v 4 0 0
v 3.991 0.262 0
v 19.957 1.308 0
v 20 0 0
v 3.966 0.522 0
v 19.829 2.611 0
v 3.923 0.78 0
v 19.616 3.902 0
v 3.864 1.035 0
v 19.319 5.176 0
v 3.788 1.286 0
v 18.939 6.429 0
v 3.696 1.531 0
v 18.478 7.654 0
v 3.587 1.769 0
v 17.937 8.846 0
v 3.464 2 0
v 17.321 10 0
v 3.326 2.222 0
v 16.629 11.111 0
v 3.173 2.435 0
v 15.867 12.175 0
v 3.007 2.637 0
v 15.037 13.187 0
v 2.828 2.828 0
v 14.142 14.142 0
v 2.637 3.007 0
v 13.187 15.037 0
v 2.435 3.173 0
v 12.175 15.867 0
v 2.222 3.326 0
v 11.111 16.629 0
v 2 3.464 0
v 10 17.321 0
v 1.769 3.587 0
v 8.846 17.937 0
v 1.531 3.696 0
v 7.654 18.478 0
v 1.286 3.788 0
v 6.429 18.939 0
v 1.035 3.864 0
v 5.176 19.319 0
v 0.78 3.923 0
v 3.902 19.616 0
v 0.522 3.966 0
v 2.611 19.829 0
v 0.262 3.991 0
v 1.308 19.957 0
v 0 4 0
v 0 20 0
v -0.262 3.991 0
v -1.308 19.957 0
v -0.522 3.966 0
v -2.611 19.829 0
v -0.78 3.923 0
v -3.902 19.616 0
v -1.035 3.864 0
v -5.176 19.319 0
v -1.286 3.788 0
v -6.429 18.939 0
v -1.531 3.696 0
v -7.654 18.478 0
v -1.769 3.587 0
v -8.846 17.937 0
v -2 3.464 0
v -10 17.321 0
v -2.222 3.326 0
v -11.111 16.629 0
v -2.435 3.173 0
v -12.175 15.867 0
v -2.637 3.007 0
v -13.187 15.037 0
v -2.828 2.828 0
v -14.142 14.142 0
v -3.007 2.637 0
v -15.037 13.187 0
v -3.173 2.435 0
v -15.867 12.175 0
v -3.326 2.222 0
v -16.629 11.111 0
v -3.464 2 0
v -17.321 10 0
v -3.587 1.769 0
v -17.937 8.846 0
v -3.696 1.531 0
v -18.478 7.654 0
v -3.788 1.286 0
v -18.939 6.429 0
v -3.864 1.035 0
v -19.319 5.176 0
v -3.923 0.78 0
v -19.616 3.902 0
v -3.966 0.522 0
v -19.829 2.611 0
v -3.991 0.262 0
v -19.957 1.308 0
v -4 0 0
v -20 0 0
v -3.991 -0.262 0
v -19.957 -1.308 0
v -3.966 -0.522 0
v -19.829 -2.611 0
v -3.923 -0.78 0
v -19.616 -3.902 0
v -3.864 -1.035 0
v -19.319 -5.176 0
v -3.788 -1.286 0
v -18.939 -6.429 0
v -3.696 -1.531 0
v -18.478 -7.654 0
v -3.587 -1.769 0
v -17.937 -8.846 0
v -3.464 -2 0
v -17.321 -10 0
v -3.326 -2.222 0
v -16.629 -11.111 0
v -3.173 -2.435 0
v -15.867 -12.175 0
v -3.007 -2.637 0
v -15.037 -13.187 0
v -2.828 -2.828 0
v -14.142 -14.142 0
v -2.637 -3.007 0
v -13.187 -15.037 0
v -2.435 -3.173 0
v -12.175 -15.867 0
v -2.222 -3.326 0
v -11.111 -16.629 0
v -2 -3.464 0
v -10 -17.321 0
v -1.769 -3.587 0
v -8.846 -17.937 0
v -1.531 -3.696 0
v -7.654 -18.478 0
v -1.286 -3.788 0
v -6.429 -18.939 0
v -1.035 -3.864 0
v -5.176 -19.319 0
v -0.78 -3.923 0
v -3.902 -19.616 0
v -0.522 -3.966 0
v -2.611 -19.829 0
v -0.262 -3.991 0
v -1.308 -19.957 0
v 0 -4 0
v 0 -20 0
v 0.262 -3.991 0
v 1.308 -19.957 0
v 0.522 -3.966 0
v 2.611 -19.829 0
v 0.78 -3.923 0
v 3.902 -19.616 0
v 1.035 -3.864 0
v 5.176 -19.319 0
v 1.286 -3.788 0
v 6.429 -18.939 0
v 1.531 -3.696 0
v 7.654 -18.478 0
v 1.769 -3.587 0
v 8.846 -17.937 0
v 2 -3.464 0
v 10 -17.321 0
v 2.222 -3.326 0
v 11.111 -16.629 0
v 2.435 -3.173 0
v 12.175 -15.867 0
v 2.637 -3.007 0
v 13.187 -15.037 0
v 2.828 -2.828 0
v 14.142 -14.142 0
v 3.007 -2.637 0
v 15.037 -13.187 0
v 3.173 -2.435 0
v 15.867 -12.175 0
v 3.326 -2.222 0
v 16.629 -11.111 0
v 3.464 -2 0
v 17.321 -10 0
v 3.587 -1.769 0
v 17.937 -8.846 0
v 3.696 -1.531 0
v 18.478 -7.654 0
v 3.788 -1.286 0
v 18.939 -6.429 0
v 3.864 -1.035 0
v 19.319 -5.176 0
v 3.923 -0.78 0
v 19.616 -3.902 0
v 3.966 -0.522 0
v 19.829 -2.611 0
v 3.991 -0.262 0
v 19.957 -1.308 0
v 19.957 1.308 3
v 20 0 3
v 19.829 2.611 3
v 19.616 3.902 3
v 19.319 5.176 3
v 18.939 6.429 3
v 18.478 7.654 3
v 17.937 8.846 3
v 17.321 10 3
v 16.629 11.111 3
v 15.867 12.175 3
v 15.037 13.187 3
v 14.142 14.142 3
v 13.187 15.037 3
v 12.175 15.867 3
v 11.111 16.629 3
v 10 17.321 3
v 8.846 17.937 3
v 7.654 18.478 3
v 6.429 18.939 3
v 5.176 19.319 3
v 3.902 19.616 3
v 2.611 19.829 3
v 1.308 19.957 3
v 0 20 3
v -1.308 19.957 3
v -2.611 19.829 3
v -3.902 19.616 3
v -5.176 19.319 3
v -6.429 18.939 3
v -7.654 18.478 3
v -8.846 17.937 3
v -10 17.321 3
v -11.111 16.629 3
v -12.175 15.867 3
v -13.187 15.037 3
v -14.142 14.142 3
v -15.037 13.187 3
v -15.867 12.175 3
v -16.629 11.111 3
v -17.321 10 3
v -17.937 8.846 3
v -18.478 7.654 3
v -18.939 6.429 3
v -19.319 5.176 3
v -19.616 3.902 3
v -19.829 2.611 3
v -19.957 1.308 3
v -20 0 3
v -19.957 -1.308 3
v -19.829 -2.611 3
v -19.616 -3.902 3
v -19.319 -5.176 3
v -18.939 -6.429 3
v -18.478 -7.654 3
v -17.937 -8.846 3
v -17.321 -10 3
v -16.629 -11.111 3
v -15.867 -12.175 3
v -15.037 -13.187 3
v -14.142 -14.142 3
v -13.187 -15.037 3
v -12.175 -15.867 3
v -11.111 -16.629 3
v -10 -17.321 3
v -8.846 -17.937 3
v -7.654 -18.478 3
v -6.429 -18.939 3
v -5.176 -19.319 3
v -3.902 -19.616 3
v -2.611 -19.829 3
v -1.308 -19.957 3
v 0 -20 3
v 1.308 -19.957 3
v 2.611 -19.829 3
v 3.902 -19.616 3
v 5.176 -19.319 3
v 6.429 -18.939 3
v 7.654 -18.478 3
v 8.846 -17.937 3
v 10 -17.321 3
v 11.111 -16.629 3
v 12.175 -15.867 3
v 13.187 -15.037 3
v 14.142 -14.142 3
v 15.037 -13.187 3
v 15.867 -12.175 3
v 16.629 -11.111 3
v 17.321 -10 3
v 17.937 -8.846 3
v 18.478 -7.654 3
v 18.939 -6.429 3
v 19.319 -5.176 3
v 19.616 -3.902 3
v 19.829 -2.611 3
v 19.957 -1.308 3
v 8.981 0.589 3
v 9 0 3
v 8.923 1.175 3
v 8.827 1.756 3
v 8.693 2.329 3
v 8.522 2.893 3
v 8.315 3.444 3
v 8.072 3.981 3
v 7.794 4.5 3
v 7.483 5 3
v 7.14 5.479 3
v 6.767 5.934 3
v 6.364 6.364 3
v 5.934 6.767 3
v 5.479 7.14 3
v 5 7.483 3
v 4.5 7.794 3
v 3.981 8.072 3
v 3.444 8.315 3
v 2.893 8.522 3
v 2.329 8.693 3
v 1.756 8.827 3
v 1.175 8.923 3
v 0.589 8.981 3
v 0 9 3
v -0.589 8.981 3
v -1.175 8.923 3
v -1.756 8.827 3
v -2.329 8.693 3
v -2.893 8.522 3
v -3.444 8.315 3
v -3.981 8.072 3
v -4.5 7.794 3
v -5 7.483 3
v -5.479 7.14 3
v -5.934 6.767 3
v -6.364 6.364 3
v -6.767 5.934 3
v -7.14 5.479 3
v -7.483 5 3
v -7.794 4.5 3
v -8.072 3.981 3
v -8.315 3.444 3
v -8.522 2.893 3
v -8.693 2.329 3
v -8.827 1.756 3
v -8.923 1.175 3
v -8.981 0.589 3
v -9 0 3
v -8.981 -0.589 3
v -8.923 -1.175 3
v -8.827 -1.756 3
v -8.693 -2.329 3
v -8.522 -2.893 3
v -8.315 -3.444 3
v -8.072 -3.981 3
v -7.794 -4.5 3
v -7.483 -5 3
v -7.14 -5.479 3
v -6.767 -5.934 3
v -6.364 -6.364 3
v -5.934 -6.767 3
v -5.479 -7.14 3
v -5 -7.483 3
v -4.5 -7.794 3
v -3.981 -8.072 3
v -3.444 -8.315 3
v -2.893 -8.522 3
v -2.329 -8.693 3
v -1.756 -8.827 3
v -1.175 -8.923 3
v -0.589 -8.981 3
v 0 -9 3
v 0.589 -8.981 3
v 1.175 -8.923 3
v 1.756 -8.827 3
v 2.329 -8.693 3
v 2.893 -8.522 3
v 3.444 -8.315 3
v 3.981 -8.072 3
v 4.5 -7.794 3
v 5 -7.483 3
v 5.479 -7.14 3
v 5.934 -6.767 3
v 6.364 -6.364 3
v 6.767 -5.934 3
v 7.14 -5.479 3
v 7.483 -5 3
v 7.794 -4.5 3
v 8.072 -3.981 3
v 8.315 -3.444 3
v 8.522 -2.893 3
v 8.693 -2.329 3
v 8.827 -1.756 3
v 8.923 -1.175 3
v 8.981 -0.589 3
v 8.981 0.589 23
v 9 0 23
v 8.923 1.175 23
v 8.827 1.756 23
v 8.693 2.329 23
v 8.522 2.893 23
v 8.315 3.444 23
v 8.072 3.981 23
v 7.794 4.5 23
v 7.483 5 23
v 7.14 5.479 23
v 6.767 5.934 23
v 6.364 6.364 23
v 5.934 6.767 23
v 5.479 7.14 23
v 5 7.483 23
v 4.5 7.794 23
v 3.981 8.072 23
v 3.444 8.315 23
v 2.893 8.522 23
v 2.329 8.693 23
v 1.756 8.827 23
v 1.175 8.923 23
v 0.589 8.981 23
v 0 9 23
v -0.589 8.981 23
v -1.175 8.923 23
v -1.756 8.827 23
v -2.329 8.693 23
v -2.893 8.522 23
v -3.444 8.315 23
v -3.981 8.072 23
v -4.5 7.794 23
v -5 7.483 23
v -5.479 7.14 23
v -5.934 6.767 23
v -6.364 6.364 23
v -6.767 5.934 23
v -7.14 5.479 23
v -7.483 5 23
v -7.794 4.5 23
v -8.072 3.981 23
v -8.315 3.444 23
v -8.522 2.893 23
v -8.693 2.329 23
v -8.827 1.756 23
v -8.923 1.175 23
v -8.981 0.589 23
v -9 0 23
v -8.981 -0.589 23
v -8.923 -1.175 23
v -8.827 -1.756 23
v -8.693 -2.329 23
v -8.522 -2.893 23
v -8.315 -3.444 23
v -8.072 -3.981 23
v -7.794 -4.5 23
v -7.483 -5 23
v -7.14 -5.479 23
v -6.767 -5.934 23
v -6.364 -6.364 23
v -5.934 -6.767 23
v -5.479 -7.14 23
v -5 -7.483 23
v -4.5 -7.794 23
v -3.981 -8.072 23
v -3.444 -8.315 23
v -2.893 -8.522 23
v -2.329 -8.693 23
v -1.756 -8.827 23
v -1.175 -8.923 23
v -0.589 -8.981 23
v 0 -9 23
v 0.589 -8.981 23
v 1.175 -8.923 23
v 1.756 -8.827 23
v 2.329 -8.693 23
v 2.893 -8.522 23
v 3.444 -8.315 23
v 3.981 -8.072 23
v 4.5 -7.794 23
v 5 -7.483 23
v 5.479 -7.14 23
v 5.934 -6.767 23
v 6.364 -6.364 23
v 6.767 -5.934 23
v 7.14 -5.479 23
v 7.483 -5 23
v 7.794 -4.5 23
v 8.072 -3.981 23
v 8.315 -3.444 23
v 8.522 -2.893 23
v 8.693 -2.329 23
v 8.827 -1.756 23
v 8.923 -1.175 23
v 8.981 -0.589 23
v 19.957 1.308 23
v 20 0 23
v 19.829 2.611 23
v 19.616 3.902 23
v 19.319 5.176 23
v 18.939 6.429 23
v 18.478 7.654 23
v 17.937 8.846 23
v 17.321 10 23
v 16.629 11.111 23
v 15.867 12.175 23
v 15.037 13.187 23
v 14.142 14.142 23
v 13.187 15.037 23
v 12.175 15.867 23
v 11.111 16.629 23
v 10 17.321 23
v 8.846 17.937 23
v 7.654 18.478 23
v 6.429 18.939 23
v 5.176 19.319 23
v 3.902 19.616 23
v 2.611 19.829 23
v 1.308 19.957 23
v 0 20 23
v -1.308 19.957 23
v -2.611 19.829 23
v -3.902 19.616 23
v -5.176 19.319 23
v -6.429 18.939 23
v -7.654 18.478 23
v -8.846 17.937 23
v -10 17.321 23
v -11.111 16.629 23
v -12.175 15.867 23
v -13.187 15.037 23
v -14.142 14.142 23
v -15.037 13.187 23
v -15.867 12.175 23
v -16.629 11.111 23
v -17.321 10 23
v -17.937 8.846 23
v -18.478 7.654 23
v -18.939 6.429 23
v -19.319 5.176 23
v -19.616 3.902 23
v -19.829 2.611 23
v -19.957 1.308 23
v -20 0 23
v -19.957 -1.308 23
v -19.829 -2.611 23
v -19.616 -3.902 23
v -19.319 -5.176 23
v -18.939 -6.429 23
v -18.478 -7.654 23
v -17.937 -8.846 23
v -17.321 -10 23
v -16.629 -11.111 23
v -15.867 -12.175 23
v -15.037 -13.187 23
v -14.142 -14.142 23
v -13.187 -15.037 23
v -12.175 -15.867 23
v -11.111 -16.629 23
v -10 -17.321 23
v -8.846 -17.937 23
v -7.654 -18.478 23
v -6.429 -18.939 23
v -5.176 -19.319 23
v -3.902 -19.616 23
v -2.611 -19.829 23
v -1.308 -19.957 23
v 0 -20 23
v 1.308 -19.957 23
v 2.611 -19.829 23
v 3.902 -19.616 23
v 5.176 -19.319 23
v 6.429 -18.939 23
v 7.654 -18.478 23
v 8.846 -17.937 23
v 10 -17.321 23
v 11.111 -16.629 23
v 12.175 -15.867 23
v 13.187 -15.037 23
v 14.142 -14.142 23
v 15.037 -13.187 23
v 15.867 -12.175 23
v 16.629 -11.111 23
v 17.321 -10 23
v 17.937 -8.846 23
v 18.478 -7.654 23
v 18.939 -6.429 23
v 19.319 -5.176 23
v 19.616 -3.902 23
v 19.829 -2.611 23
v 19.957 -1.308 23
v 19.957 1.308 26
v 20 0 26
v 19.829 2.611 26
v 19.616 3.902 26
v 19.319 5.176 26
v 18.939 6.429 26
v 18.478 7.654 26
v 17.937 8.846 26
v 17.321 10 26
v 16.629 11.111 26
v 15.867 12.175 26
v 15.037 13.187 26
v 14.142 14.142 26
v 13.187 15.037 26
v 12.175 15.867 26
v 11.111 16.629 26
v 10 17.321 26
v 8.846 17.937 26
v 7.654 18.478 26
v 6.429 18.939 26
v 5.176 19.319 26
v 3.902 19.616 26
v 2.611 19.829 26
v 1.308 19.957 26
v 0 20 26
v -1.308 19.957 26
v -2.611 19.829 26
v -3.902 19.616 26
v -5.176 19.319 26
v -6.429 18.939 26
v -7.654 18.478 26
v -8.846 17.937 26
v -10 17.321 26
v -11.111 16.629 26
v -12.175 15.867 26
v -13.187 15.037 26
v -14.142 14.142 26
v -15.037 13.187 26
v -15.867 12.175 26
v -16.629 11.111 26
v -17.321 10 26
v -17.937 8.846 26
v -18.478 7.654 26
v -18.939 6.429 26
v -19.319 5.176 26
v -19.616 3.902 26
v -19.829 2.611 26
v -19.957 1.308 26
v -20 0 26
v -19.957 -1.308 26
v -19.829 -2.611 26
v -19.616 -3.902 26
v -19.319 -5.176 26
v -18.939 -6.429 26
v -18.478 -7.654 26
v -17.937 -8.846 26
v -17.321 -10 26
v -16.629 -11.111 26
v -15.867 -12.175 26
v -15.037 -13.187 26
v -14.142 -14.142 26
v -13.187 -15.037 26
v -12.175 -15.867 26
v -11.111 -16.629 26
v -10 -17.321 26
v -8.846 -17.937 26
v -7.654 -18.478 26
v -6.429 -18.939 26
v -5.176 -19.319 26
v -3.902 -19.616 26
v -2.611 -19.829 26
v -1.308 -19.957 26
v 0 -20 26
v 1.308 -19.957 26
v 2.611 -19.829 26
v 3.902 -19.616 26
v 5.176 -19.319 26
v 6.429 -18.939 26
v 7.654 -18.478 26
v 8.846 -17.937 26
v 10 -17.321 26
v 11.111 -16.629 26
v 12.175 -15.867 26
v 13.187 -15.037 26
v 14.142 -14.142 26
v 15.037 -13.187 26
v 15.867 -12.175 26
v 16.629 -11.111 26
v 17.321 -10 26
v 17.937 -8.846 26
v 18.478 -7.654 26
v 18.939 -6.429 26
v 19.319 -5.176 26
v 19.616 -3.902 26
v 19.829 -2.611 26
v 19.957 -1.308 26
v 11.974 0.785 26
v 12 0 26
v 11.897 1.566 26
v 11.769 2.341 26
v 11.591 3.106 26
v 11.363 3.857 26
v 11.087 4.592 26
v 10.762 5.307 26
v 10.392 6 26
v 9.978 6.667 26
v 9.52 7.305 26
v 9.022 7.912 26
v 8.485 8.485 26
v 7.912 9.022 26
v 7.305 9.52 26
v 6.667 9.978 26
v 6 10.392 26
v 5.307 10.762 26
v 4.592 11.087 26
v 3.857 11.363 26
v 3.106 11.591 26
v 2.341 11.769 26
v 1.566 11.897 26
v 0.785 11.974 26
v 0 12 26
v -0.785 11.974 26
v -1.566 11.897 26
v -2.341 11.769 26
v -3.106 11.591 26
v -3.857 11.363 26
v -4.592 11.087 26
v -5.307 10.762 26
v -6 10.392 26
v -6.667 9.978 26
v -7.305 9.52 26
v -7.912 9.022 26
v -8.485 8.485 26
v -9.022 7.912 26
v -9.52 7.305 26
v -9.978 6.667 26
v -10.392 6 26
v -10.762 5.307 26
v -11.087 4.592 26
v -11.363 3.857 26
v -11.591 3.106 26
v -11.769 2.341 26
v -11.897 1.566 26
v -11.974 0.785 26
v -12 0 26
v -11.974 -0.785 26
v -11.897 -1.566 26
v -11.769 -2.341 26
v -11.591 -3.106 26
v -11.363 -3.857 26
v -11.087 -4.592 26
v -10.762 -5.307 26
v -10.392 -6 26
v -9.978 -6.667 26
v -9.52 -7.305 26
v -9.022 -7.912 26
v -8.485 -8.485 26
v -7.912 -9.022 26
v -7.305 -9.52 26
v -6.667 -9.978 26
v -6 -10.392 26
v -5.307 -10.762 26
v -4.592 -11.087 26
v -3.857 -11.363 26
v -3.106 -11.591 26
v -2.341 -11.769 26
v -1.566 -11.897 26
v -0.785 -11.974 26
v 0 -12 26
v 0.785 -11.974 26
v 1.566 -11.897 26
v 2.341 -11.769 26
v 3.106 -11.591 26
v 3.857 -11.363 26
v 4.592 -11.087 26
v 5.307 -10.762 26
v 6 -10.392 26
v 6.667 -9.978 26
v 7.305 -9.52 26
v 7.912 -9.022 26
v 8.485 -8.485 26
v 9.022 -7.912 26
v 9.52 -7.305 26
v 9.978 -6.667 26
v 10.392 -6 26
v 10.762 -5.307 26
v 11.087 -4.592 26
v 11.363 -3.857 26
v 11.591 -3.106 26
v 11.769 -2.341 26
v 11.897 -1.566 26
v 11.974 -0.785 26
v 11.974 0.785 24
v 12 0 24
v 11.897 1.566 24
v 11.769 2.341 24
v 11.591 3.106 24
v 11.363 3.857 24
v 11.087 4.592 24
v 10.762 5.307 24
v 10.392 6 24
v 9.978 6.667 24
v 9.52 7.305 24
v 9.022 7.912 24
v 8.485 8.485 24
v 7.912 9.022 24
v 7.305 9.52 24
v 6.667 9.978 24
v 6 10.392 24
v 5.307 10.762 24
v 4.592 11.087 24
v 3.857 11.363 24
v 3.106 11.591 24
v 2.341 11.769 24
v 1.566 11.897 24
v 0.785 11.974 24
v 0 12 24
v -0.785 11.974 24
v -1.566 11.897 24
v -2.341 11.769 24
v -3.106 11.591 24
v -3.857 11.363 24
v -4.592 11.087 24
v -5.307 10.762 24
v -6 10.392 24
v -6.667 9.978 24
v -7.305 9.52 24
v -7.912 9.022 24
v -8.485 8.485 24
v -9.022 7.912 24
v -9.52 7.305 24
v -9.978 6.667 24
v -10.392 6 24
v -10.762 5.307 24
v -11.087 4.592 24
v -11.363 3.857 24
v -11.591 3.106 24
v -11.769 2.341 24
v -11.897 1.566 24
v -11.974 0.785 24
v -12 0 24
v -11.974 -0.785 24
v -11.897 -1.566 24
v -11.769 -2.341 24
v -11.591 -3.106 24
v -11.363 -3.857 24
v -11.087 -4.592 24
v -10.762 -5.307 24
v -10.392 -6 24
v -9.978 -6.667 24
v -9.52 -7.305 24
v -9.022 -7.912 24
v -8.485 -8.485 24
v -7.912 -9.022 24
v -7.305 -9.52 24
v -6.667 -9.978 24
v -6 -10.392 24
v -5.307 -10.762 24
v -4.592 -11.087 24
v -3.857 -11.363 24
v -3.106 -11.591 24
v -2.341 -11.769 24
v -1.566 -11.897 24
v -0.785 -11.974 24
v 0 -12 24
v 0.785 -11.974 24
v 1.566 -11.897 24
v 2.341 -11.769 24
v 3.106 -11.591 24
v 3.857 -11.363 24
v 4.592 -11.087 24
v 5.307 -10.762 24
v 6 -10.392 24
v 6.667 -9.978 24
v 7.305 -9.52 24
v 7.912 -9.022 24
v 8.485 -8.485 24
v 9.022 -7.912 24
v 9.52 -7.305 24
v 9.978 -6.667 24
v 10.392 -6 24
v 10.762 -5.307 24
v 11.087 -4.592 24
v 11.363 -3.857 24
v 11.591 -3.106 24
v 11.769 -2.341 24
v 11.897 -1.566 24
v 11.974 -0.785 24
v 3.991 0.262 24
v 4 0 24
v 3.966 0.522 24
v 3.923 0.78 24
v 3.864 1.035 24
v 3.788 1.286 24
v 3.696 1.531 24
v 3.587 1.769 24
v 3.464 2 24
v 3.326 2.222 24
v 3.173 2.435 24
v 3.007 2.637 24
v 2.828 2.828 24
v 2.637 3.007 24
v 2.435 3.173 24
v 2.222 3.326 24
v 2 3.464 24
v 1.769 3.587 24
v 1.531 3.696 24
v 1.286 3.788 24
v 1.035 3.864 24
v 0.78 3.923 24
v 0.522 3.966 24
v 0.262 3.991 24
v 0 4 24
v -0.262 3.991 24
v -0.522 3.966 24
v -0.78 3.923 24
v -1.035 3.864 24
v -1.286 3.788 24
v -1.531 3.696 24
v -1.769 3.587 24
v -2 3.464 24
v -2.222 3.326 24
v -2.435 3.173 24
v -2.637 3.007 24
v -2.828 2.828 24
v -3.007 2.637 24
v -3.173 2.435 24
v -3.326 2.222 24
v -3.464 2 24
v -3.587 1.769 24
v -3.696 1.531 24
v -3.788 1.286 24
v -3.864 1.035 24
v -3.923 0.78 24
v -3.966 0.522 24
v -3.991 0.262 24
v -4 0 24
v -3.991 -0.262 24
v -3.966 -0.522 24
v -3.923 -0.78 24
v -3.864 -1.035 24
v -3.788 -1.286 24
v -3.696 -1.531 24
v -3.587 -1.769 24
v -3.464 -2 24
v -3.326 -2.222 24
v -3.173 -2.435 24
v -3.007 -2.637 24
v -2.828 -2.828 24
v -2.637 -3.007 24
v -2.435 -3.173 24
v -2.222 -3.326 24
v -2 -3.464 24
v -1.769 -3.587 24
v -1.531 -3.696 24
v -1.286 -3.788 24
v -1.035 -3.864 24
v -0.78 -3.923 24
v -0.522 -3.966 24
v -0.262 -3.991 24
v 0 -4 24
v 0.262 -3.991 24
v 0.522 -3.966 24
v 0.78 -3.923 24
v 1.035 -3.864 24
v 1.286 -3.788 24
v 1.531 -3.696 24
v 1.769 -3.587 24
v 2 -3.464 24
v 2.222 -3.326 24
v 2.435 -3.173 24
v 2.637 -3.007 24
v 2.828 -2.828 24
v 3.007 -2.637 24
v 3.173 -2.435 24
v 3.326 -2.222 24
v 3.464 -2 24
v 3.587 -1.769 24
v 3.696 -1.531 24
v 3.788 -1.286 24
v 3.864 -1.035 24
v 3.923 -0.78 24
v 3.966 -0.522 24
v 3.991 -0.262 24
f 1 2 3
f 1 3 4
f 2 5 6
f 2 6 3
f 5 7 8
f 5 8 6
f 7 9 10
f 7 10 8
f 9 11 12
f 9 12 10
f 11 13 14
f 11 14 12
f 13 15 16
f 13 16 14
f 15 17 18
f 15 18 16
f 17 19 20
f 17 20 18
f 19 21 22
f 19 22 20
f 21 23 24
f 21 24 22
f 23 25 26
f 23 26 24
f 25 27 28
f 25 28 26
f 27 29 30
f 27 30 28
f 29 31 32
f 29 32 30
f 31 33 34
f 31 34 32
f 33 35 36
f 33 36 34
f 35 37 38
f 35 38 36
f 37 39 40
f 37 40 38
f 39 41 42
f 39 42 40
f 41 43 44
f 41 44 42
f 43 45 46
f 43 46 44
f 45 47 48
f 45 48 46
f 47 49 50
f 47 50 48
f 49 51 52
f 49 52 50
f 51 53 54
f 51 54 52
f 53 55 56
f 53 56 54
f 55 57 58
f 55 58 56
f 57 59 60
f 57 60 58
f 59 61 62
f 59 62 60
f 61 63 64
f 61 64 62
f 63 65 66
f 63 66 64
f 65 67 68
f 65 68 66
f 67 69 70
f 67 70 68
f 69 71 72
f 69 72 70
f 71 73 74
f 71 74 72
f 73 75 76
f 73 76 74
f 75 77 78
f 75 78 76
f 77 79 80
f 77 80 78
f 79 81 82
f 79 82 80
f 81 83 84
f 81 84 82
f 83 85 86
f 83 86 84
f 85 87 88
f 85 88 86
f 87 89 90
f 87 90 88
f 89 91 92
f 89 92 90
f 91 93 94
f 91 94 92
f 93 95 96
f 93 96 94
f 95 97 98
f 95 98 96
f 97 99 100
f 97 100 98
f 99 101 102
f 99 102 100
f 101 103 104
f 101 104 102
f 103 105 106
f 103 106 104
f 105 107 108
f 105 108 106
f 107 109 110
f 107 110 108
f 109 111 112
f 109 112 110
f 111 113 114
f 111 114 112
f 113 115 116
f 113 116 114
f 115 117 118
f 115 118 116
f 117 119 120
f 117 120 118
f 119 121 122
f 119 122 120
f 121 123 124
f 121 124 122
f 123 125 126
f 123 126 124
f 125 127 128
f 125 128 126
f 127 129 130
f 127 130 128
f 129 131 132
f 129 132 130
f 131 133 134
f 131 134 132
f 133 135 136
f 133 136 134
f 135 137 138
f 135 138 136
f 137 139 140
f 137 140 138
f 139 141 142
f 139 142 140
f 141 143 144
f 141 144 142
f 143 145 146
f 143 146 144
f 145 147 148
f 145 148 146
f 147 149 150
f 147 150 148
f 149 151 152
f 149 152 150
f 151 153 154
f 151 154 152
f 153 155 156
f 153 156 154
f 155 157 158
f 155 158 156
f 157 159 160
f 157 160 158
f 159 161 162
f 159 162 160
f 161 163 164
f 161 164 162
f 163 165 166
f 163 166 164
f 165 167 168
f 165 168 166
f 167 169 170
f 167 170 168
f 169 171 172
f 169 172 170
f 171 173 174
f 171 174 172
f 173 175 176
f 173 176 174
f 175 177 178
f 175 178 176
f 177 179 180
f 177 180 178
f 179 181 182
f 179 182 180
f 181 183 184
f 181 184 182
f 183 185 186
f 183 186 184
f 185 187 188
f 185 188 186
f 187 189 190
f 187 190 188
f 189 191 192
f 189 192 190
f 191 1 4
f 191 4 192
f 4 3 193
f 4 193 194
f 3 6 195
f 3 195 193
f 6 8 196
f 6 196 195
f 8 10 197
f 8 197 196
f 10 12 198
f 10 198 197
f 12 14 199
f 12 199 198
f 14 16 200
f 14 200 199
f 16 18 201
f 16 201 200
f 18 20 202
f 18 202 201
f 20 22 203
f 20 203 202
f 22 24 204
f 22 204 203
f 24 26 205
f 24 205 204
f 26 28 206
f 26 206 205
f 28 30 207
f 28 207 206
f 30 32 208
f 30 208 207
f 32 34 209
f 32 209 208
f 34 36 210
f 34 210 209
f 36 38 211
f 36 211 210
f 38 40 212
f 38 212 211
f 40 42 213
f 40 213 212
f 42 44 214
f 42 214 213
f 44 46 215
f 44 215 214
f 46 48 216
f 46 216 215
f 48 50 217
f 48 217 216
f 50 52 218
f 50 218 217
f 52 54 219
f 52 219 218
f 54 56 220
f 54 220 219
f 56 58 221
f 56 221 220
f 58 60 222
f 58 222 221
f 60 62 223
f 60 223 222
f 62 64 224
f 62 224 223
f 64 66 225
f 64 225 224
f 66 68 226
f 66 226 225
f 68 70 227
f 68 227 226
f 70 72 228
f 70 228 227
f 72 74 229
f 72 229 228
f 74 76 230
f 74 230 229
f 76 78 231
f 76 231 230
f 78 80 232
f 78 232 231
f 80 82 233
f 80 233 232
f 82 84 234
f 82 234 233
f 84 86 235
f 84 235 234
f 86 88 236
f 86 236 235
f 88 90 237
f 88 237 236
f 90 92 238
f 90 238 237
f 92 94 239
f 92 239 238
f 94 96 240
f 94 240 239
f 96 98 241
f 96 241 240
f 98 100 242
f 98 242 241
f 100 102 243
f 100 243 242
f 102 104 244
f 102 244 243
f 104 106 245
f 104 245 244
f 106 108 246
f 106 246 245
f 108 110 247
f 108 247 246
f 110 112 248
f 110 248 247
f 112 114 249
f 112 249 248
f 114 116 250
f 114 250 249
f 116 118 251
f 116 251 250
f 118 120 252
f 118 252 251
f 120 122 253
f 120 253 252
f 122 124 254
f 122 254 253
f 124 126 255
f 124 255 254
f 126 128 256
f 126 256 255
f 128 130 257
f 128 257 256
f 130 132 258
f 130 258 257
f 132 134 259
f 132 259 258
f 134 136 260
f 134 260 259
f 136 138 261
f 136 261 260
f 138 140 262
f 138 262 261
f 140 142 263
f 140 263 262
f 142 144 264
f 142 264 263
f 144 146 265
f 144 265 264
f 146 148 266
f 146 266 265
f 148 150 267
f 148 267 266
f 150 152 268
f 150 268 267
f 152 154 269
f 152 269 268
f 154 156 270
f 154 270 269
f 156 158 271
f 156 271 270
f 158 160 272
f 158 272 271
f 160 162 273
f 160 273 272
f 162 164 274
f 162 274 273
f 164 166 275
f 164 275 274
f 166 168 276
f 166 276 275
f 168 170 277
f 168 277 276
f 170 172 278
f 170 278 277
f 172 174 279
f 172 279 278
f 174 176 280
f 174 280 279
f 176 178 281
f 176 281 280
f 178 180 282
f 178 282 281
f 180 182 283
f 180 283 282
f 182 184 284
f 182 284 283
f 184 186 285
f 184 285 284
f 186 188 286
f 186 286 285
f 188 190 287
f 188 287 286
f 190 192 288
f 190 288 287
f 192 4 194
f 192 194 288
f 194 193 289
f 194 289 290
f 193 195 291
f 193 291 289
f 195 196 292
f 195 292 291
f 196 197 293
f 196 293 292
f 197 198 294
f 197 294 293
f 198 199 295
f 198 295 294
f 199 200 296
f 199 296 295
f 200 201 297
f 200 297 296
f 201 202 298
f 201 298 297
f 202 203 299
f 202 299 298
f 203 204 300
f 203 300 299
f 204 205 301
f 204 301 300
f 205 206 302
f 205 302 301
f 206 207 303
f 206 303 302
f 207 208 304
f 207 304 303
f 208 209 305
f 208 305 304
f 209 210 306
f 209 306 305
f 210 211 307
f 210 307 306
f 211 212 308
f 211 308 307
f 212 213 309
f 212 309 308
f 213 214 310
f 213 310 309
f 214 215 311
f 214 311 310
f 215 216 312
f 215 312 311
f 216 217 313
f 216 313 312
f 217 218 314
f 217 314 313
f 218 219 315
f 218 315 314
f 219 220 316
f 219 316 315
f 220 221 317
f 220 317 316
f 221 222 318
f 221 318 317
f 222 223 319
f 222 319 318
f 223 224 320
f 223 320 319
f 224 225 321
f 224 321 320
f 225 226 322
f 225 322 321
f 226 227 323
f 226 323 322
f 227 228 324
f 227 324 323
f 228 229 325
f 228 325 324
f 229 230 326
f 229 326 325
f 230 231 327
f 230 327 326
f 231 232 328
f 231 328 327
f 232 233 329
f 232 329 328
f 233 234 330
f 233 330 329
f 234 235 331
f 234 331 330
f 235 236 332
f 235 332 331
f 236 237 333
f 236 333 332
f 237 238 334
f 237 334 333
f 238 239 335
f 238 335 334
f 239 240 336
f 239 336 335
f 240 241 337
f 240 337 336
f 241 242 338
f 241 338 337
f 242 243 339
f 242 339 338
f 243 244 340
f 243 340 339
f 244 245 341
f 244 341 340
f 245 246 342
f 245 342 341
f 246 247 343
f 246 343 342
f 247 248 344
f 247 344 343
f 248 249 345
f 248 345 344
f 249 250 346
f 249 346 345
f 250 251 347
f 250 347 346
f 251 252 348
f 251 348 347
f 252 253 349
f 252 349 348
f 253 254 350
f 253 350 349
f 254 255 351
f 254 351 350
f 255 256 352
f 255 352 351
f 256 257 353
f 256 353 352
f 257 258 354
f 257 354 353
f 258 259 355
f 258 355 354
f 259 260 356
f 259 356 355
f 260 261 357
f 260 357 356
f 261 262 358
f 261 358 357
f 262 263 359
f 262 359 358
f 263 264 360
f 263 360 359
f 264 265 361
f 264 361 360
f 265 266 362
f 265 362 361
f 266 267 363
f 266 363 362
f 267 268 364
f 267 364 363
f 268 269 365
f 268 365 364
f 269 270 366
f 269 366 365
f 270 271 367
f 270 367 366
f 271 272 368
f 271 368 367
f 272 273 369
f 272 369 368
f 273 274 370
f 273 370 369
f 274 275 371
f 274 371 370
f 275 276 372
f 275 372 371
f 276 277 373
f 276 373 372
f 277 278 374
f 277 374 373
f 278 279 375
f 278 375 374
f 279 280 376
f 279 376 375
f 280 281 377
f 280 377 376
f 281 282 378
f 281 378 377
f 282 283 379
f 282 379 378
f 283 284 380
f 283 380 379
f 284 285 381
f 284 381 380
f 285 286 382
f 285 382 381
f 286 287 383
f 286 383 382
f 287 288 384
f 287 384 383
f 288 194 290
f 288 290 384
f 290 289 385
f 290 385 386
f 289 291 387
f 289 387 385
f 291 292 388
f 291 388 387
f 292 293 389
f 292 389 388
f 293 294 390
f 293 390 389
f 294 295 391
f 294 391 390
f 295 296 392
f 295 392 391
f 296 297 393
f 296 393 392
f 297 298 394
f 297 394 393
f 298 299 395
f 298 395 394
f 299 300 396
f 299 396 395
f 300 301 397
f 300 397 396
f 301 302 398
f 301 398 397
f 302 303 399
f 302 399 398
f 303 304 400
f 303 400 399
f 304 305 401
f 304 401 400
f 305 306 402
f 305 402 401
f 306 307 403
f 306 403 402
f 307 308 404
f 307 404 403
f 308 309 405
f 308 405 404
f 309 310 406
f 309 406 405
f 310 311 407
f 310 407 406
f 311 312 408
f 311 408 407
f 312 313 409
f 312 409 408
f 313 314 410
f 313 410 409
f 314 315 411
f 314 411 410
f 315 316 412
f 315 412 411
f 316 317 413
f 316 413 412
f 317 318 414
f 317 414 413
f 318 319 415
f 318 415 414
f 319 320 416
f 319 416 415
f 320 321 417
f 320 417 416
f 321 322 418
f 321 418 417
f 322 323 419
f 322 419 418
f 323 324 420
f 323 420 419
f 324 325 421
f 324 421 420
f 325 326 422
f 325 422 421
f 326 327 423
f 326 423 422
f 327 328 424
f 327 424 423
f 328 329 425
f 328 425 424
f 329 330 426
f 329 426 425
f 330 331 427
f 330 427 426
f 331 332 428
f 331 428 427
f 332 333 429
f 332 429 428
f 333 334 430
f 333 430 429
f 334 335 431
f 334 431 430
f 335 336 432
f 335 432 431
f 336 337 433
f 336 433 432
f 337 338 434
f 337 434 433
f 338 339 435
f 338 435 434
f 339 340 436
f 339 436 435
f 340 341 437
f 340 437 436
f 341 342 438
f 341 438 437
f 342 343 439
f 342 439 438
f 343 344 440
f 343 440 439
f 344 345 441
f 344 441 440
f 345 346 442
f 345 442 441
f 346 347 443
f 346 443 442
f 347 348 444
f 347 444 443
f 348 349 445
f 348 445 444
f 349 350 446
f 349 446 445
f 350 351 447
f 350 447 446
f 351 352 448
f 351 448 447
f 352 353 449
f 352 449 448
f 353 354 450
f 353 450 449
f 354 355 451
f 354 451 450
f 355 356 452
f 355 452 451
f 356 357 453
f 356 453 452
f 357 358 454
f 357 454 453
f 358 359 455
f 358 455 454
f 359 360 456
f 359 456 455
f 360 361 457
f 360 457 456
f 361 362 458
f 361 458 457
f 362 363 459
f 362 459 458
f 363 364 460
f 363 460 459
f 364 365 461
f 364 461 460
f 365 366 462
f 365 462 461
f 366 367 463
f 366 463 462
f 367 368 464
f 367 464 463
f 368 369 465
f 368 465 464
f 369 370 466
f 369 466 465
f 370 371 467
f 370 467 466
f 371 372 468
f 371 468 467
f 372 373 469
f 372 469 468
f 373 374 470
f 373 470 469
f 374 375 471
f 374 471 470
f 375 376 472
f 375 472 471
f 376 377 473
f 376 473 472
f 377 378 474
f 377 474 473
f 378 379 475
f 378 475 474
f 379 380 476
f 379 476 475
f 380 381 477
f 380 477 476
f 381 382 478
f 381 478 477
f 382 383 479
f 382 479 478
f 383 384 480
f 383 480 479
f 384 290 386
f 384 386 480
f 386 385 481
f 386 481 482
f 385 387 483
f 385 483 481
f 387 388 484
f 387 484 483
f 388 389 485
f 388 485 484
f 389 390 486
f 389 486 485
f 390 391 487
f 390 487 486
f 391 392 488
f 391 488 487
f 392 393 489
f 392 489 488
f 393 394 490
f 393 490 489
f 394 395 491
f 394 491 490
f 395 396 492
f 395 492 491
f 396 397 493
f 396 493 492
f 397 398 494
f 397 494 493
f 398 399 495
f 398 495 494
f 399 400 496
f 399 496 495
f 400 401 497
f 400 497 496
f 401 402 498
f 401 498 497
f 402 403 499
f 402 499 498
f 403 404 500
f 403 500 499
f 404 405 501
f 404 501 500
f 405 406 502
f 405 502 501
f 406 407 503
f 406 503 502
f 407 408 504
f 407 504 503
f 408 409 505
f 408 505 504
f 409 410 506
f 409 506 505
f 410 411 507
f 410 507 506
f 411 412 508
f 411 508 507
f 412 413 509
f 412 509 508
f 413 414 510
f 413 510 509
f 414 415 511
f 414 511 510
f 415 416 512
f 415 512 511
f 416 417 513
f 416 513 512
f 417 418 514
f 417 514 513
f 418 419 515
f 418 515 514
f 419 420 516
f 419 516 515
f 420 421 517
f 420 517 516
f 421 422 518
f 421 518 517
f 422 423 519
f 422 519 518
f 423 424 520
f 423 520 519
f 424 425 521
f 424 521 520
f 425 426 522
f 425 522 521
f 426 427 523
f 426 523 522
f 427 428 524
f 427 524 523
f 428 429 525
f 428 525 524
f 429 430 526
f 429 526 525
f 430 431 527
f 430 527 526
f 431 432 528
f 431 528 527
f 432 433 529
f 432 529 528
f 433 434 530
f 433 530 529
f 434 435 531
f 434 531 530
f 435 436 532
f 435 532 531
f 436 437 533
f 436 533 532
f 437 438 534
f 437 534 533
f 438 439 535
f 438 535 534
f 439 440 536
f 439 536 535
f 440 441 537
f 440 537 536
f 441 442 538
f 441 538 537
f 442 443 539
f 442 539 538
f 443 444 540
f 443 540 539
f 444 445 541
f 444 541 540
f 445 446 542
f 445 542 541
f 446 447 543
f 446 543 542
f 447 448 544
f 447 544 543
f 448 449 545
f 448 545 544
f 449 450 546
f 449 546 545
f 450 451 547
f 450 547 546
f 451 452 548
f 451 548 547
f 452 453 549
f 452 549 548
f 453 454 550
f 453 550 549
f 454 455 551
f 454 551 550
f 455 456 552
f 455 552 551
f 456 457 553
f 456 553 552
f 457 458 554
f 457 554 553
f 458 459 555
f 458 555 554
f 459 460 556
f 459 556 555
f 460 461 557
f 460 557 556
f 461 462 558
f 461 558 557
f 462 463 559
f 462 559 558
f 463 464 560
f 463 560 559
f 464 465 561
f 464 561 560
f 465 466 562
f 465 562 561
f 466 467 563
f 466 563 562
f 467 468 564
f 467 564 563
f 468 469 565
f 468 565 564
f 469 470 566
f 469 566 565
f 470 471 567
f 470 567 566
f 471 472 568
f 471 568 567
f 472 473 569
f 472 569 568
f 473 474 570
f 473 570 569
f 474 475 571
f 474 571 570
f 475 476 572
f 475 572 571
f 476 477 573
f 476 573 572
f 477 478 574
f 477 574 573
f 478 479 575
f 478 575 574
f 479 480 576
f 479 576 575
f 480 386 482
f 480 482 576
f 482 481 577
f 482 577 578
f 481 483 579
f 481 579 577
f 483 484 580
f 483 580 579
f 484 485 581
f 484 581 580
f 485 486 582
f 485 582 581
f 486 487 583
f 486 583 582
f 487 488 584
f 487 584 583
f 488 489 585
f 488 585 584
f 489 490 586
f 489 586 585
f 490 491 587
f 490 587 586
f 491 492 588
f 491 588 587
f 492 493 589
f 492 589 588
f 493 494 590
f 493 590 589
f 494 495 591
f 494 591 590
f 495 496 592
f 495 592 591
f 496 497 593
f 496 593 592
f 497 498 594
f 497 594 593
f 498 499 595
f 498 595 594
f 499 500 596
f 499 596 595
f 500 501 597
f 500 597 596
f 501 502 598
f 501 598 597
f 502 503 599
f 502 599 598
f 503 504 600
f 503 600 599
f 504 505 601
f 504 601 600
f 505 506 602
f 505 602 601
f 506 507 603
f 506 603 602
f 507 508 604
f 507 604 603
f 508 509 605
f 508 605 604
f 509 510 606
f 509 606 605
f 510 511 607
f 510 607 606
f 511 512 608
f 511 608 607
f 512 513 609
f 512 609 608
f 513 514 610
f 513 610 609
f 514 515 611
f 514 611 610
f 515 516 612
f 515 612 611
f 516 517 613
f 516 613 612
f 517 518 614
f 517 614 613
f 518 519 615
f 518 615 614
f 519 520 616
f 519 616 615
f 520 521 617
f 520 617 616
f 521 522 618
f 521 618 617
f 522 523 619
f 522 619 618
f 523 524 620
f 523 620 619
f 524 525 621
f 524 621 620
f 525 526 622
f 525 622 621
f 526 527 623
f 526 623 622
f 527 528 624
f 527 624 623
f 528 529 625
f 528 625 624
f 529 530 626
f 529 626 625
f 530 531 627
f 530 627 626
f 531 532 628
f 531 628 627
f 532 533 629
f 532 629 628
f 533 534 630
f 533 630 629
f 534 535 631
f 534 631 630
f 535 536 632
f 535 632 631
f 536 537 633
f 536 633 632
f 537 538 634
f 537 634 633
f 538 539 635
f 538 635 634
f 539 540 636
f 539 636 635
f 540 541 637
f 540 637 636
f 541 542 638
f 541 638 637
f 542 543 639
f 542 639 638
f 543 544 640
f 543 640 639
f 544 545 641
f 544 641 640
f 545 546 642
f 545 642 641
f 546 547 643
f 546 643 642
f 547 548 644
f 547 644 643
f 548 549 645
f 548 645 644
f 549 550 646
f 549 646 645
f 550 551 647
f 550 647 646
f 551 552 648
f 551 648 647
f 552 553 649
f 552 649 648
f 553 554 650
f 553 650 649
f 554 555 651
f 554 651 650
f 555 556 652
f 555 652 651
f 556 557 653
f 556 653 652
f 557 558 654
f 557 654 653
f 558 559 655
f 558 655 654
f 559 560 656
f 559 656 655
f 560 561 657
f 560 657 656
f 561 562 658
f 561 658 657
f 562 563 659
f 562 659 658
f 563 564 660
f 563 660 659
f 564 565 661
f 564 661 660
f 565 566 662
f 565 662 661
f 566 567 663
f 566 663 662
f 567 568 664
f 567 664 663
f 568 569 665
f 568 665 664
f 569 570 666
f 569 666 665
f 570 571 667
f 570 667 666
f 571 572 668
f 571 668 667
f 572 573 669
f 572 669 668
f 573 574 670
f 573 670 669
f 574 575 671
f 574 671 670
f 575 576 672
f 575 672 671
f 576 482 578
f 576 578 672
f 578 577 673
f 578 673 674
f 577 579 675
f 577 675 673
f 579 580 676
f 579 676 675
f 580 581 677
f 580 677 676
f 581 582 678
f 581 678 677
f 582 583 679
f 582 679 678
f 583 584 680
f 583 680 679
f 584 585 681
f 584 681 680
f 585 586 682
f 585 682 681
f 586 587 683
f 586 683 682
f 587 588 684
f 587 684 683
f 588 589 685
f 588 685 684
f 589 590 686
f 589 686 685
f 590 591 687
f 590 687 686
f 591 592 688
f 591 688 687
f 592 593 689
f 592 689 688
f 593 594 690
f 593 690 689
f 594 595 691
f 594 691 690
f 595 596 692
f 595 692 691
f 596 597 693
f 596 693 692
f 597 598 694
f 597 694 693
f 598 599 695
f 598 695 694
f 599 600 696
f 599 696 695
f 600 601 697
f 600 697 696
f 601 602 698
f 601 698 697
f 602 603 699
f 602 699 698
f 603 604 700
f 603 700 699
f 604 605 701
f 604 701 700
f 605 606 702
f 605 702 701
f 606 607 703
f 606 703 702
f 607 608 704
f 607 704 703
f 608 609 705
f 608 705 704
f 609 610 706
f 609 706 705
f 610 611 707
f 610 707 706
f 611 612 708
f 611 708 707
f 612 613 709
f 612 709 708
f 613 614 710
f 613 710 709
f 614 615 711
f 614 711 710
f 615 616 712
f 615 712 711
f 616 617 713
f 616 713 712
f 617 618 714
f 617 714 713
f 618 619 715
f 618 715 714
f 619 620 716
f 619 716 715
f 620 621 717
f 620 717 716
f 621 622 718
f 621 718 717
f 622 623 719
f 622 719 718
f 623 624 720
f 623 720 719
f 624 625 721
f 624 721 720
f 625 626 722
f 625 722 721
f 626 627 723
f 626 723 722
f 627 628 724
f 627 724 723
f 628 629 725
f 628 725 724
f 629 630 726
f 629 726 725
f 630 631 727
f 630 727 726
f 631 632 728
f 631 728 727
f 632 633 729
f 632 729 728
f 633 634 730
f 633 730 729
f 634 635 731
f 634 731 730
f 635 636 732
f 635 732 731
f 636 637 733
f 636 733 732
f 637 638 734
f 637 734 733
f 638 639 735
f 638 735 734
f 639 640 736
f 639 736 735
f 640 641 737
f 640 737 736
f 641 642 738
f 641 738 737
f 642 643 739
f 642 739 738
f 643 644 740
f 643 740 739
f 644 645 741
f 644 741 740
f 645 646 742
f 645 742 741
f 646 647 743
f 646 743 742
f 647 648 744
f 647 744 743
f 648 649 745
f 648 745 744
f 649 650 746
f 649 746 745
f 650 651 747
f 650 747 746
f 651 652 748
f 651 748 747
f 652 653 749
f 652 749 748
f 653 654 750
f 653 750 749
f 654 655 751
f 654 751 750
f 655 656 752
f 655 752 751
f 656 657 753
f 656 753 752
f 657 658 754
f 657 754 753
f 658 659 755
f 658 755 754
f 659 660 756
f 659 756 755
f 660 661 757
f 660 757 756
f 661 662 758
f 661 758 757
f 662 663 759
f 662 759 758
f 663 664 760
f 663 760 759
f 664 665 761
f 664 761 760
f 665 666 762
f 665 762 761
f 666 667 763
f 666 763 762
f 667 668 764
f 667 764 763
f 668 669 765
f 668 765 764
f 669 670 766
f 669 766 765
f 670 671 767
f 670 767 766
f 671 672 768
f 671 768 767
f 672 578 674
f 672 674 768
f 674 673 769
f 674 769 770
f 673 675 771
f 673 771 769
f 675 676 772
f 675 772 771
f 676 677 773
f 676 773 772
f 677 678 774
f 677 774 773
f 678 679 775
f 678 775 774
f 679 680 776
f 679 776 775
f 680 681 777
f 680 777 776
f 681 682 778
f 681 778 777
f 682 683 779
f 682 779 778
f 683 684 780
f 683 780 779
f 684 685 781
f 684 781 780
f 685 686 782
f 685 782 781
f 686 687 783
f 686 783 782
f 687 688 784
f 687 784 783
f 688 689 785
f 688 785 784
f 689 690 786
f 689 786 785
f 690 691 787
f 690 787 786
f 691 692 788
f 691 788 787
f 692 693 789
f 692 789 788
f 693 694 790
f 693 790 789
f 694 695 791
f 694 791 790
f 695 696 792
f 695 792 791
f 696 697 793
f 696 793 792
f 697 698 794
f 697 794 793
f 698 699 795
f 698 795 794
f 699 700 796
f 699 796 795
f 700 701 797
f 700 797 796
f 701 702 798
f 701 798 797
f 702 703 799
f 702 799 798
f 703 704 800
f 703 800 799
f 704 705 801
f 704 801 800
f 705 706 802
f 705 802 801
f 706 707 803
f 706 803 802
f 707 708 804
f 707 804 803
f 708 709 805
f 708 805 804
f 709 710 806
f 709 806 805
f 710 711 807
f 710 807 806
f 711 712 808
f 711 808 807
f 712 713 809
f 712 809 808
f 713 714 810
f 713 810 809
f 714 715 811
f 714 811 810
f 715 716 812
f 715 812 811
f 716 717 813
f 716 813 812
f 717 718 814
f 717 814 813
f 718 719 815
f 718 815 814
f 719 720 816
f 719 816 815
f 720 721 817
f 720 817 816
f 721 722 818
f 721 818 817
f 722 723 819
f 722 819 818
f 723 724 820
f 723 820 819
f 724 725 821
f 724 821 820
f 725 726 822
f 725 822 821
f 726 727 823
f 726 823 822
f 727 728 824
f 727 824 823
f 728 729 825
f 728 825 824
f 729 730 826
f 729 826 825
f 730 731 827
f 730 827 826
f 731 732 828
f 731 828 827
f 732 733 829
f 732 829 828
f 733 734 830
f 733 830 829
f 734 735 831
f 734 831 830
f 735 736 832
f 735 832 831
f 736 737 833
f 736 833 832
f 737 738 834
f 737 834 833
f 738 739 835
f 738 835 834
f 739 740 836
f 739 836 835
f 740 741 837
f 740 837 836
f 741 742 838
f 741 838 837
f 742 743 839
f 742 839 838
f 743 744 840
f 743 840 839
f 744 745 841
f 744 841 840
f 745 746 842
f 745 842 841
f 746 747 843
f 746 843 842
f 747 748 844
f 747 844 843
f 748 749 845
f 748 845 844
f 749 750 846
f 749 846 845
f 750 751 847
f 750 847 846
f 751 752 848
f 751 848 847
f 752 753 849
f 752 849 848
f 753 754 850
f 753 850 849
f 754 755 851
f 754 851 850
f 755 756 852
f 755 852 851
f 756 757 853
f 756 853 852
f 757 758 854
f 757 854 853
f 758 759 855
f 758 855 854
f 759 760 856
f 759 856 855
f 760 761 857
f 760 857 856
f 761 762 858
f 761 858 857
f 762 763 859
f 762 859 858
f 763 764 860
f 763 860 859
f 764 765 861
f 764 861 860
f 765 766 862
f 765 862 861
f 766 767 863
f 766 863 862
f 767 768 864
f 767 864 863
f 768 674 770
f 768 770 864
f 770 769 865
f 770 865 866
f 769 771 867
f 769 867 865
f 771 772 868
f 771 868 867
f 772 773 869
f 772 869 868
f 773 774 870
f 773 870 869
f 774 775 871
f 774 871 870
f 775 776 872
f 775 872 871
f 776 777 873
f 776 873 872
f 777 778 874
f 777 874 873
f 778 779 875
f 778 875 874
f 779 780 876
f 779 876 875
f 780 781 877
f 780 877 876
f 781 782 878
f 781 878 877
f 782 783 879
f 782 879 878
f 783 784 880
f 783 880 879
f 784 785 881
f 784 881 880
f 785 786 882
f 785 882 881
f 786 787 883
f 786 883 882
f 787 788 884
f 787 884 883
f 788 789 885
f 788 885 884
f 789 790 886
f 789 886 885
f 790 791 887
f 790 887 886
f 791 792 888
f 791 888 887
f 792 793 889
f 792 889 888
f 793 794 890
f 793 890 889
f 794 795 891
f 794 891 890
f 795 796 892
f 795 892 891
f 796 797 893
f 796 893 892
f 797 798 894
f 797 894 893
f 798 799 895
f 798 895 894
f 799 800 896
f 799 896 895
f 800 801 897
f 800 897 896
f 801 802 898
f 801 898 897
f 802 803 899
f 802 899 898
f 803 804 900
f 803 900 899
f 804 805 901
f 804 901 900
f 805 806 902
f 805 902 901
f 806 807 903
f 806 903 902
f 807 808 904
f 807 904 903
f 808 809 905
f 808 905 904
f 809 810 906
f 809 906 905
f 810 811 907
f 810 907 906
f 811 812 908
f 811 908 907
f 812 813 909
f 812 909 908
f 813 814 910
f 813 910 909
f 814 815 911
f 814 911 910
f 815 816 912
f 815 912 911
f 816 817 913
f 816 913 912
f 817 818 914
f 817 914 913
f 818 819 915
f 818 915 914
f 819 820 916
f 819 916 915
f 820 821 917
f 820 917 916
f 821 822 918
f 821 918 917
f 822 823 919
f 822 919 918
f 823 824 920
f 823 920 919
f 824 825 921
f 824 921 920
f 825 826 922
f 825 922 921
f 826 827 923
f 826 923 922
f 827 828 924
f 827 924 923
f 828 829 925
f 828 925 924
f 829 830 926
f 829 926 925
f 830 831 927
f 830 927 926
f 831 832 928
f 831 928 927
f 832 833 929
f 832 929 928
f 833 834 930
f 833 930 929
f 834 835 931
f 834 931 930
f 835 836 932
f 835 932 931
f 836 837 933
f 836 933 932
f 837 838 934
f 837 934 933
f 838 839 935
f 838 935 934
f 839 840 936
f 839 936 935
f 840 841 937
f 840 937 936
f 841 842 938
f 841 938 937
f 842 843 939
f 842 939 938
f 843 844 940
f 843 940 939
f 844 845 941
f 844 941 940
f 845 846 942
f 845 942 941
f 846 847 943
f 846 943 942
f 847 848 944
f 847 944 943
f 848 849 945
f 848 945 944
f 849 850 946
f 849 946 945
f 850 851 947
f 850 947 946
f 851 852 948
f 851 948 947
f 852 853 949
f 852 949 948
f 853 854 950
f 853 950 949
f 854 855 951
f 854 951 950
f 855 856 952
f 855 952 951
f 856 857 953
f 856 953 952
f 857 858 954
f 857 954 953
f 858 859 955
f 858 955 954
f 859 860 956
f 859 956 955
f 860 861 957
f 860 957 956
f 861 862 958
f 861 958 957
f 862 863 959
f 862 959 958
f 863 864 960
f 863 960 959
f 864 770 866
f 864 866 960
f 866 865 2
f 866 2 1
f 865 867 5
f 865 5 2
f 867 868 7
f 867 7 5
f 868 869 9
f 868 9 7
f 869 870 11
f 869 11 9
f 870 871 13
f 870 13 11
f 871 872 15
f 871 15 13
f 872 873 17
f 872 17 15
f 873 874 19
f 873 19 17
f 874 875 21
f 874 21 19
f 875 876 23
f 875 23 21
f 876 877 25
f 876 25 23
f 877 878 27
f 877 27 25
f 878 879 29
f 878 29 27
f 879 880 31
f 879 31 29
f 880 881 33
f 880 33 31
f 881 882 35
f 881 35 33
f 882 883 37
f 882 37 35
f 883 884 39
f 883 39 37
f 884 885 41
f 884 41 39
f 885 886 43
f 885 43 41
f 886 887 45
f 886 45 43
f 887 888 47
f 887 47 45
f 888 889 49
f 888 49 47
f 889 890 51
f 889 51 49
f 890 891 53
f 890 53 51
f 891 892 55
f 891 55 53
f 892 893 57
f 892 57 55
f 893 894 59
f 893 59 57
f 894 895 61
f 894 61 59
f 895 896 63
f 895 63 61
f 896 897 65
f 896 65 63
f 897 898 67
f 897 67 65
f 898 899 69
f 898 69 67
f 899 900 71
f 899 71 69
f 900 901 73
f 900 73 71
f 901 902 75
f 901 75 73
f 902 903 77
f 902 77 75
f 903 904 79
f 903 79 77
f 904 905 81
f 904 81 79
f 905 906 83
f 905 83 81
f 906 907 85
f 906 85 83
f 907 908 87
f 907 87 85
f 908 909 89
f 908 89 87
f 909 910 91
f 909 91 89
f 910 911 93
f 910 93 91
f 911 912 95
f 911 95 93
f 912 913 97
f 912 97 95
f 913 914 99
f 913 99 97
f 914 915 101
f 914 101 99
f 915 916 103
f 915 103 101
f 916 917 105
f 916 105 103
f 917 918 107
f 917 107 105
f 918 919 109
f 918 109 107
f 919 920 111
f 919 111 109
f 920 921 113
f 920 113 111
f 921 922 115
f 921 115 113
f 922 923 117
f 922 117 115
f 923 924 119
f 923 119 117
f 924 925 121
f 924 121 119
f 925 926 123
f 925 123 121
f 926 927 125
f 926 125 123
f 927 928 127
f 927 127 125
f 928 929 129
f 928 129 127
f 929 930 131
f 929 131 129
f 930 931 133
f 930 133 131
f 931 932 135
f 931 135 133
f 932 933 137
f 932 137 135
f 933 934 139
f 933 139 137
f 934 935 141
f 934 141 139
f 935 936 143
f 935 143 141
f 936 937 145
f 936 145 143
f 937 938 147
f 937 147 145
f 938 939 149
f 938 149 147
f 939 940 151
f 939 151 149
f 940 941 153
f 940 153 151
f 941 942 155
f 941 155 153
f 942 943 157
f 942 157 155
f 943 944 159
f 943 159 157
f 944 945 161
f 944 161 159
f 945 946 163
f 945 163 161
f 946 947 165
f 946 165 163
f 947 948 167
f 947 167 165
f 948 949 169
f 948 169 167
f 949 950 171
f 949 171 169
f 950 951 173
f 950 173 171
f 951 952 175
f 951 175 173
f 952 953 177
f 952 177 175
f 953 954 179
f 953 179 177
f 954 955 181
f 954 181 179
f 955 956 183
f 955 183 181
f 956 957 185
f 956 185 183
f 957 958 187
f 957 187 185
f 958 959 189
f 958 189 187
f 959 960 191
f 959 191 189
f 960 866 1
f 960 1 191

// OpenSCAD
// Original MechIntel educational model. CC0-1.0. Units: mm.
// Not a standardized or load-rated component.
$fn=96;
// Section points: [radius, height], mm. Edit to change the profile.
section=[[4, 0], [20, 0], [20, 3], [9, 3], [9, 23], [20, 23], [20, 26], [12, 26], [12, 24], [4, 24]];
rotate_extrude($fn=96) polygon(points=section);
